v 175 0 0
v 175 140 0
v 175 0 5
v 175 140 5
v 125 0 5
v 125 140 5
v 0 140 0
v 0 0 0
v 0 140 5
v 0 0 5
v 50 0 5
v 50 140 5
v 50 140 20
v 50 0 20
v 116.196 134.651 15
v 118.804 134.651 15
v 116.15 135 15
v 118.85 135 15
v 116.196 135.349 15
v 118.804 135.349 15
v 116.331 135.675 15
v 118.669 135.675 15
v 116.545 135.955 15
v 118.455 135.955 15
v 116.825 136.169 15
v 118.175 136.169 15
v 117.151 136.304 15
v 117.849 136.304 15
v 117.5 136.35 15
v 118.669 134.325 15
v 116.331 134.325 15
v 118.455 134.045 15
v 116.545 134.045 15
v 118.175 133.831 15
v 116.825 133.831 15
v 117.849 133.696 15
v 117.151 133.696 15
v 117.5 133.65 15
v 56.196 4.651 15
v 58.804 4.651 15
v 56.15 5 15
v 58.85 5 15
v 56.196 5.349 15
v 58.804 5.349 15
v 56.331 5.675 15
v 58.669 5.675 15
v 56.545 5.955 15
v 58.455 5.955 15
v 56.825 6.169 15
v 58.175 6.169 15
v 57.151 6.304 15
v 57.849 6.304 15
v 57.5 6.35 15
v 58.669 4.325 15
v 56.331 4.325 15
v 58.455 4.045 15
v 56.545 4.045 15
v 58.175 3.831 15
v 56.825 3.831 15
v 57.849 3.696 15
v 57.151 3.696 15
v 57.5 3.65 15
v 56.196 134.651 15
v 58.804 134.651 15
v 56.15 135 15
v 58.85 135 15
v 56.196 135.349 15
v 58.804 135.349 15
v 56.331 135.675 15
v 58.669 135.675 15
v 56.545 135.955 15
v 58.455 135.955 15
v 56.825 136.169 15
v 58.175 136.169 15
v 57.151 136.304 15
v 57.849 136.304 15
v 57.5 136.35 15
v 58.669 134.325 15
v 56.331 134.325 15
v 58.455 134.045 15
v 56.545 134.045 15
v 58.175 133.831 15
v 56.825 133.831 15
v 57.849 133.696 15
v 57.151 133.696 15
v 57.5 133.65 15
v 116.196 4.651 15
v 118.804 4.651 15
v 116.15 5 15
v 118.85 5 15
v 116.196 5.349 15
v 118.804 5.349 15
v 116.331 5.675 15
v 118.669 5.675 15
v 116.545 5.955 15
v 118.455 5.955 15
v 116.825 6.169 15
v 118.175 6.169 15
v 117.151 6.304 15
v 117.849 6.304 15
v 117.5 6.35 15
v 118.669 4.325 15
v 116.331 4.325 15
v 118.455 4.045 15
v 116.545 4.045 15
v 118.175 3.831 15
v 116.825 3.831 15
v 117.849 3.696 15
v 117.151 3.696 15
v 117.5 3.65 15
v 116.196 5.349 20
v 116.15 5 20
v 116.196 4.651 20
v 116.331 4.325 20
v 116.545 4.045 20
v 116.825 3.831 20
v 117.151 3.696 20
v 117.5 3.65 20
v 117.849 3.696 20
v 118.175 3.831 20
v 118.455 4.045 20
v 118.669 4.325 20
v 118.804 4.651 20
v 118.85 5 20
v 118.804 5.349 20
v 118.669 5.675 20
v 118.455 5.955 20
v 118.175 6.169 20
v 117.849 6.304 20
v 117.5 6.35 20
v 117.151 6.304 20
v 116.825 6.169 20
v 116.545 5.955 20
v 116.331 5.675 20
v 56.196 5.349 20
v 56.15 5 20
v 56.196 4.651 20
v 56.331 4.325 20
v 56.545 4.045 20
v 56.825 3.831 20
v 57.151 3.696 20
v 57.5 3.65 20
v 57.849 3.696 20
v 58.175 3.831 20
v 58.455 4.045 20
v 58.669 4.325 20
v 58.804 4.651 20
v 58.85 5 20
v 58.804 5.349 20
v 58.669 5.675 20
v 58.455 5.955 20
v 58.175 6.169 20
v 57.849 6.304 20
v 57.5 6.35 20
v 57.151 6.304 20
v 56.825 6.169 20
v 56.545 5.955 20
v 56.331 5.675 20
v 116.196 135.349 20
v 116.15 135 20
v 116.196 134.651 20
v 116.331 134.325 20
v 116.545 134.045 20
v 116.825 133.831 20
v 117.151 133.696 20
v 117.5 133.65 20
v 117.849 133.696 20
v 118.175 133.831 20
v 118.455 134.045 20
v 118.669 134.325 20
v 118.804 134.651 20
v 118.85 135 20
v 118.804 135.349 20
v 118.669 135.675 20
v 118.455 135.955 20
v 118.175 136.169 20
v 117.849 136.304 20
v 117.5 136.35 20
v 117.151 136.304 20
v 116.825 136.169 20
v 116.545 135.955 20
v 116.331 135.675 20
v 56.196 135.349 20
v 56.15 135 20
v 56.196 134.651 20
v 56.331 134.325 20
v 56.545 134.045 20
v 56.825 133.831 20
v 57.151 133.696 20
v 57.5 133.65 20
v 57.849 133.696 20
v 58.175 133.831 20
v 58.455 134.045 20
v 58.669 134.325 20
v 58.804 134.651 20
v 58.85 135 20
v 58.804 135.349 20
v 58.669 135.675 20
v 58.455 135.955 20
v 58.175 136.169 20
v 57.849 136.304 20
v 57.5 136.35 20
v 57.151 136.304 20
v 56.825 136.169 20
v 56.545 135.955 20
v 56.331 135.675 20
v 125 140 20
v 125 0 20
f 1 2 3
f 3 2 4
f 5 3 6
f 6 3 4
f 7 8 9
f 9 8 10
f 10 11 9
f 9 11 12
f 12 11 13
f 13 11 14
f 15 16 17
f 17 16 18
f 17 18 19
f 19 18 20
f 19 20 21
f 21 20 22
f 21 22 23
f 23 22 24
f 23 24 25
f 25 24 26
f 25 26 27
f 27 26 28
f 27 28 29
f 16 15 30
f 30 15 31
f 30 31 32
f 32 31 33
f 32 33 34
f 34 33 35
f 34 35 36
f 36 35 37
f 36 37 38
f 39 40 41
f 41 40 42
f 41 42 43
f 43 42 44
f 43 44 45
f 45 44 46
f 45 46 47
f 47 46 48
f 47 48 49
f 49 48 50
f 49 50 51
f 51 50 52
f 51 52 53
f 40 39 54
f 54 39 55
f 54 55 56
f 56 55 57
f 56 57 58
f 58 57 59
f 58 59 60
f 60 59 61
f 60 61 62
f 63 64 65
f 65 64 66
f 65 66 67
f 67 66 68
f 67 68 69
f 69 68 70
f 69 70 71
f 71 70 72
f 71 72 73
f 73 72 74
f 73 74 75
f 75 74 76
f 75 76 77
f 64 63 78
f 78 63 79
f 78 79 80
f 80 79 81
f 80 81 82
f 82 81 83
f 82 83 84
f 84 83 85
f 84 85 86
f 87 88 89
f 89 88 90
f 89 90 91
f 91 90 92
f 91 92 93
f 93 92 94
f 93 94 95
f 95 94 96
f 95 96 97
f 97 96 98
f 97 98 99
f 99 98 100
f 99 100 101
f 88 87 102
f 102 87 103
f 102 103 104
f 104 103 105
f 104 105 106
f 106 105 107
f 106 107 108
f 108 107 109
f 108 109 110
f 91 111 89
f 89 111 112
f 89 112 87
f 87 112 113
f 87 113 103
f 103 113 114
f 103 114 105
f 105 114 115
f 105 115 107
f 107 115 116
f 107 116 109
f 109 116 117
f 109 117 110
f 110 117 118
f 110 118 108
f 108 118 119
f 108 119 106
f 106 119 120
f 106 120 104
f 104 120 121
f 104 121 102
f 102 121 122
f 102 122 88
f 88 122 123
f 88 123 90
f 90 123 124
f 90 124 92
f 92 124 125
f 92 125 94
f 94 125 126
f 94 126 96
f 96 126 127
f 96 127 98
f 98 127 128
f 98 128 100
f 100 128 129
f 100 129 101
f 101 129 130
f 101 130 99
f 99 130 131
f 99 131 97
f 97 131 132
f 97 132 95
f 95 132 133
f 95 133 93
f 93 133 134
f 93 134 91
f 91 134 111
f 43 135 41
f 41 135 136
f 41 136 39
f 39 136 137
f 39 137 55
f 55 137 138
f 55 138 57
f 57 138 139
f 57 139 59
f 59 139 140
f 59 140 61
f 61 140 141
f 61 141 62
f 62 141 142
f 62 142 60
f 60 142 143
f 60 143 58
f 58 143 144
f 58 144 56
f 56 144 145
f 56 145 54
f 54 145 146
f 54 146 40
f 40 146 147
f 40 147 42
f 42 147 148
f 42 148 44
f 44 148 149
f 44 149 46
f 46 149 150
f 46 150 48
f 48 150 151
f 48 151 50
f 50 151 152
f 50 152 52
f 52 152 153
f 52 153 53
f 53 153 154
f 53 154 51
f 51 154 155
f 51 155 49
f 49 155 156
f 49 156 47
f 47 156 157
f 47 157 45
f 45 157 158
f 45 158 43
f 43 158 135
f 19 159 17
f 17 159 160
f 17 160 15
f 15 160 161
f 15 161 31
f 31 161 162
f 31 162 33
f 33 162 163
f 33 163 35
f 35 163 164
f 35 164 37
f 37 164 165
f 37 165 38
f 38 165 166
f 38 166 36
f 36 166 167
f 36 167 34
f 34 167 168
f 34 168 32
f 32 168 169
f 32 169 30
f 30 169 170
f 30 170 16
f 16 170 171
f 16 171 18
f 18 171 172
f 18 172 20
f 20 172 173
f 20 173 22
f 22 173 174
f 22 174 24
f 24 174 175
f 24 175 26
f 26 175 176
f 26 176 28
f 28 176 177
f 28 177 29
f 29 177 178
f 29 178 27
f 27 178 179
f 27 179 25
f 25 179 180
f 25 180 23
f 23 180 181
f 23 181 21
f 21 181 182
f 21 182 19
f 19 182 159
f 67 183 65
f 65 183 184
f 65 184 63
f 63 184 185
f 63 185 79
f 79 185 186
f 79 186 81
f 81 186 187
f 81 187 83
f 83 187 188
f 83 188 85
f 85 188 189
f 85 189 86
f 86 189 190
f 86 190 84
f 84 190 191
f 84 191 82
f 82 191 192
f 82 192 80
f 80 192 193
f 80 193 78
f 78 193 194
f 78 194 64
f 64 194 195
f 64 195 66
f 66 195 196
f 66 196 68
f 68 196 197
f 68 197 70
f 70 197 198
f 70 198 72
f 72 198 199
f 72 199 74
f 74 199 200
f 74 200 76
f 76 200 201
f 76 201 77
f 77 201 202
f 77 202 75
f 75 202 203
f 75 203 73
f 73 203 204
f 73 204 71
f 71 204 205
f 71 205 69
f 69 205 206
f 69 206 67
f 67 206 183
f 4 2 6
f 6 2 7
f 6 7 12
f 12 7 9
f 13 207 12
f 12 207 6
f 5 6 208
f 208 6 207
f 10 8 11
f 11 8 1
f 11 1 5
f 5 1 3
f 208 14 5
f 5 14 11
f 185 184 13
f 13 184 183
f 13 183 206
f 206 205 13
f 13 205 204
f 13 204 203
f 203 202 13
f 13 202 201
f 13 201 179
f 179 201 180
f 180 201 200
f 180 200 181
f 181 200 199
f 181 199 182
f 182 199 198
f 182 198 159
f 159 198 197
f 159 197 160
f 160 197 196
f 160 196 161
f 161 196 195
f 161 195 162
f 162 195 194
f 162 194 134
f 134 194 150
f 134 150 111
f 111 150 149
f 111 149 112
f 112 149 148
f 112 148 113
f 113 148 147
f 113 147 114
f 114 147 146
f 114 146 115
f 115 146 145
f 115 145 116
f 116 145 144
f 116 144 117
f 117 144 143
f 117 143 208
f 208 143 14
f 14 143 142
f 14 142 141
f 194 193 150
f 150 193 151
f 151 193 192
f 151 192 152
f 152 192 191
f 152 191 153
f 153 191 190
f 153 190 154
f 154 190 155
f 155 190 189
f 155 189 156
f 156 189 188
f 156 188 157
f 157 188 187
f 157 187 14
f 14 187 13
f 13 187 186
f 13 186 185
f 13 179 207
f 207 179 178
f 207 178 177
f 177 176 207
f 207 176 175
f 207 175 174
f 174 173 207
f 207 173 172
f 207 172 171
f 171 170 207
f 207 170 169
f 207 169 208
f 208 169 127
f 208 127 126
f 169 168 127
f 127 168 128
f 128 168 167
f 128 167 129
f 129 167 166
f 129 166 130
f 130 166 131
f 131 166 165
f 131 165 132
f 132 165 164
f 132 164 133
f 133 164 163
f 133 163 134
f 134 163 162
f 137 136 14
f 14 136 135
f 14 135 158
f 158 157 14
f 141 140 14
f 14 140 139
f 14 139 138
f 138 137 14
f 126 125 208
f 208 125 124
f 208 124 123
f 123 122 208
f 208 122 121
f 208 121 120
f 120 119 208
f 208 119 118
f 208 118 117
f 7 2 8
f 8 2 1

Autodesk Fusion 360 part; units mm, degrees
sketch "Sketch1" plane through (0, 0, 0) normal (0, 0, 1) x (1, 0, 0)
  line L0 (0, 0) -> (175, 0)
  line L1 (175, 0) -> (175, 140)
  line L2 (175, 140) -> (0, 140)
  line L3 (0, 140) -> (0, 0)
  line L4 (50, 140) -> (50, 0)
  line L5 (125, 140) -> (125, 0)
  circle A0 centre (57.5, 5) radius 1.35
  circle A1 centre (117.5, 5) radius 1.35
  line L6 (87.5, 0) -> (87.5, 140) construction
  circle A2 centre (57.5, 135) radius 1.35
  circle A3 centre (117.5, 135) radius 1.35
  dimension "d1" = 140
  dimension "d2" = 175
  dimension "d3" = 50
  dimension "d4" = 50
  dimension "d5" = 2.7
  dimension "d6" = 5
  dimension "d7" = 2.7
  dimension "d8" = 5
  dimension "d10" = 60
  dimension "d11" = 2.7
  dimension "d12" = 2.7
  dimension "d13" = 60
  dimension "d14" = 5
  dimension "d15" = 5
extrude "Extrude1" add sketch "Sketch1" along normal blind 20 contours L0 L2 L4 L5
extrude "Extrude2" add sketch "Sketch1" along normal blind 15 contours A0 | A1 | A2 | A3
extrude "Extrude3" add sketch "Sketch1" along normal blind 5 contours L0 L2 L3 L4 | L0 L1 L2 L5
